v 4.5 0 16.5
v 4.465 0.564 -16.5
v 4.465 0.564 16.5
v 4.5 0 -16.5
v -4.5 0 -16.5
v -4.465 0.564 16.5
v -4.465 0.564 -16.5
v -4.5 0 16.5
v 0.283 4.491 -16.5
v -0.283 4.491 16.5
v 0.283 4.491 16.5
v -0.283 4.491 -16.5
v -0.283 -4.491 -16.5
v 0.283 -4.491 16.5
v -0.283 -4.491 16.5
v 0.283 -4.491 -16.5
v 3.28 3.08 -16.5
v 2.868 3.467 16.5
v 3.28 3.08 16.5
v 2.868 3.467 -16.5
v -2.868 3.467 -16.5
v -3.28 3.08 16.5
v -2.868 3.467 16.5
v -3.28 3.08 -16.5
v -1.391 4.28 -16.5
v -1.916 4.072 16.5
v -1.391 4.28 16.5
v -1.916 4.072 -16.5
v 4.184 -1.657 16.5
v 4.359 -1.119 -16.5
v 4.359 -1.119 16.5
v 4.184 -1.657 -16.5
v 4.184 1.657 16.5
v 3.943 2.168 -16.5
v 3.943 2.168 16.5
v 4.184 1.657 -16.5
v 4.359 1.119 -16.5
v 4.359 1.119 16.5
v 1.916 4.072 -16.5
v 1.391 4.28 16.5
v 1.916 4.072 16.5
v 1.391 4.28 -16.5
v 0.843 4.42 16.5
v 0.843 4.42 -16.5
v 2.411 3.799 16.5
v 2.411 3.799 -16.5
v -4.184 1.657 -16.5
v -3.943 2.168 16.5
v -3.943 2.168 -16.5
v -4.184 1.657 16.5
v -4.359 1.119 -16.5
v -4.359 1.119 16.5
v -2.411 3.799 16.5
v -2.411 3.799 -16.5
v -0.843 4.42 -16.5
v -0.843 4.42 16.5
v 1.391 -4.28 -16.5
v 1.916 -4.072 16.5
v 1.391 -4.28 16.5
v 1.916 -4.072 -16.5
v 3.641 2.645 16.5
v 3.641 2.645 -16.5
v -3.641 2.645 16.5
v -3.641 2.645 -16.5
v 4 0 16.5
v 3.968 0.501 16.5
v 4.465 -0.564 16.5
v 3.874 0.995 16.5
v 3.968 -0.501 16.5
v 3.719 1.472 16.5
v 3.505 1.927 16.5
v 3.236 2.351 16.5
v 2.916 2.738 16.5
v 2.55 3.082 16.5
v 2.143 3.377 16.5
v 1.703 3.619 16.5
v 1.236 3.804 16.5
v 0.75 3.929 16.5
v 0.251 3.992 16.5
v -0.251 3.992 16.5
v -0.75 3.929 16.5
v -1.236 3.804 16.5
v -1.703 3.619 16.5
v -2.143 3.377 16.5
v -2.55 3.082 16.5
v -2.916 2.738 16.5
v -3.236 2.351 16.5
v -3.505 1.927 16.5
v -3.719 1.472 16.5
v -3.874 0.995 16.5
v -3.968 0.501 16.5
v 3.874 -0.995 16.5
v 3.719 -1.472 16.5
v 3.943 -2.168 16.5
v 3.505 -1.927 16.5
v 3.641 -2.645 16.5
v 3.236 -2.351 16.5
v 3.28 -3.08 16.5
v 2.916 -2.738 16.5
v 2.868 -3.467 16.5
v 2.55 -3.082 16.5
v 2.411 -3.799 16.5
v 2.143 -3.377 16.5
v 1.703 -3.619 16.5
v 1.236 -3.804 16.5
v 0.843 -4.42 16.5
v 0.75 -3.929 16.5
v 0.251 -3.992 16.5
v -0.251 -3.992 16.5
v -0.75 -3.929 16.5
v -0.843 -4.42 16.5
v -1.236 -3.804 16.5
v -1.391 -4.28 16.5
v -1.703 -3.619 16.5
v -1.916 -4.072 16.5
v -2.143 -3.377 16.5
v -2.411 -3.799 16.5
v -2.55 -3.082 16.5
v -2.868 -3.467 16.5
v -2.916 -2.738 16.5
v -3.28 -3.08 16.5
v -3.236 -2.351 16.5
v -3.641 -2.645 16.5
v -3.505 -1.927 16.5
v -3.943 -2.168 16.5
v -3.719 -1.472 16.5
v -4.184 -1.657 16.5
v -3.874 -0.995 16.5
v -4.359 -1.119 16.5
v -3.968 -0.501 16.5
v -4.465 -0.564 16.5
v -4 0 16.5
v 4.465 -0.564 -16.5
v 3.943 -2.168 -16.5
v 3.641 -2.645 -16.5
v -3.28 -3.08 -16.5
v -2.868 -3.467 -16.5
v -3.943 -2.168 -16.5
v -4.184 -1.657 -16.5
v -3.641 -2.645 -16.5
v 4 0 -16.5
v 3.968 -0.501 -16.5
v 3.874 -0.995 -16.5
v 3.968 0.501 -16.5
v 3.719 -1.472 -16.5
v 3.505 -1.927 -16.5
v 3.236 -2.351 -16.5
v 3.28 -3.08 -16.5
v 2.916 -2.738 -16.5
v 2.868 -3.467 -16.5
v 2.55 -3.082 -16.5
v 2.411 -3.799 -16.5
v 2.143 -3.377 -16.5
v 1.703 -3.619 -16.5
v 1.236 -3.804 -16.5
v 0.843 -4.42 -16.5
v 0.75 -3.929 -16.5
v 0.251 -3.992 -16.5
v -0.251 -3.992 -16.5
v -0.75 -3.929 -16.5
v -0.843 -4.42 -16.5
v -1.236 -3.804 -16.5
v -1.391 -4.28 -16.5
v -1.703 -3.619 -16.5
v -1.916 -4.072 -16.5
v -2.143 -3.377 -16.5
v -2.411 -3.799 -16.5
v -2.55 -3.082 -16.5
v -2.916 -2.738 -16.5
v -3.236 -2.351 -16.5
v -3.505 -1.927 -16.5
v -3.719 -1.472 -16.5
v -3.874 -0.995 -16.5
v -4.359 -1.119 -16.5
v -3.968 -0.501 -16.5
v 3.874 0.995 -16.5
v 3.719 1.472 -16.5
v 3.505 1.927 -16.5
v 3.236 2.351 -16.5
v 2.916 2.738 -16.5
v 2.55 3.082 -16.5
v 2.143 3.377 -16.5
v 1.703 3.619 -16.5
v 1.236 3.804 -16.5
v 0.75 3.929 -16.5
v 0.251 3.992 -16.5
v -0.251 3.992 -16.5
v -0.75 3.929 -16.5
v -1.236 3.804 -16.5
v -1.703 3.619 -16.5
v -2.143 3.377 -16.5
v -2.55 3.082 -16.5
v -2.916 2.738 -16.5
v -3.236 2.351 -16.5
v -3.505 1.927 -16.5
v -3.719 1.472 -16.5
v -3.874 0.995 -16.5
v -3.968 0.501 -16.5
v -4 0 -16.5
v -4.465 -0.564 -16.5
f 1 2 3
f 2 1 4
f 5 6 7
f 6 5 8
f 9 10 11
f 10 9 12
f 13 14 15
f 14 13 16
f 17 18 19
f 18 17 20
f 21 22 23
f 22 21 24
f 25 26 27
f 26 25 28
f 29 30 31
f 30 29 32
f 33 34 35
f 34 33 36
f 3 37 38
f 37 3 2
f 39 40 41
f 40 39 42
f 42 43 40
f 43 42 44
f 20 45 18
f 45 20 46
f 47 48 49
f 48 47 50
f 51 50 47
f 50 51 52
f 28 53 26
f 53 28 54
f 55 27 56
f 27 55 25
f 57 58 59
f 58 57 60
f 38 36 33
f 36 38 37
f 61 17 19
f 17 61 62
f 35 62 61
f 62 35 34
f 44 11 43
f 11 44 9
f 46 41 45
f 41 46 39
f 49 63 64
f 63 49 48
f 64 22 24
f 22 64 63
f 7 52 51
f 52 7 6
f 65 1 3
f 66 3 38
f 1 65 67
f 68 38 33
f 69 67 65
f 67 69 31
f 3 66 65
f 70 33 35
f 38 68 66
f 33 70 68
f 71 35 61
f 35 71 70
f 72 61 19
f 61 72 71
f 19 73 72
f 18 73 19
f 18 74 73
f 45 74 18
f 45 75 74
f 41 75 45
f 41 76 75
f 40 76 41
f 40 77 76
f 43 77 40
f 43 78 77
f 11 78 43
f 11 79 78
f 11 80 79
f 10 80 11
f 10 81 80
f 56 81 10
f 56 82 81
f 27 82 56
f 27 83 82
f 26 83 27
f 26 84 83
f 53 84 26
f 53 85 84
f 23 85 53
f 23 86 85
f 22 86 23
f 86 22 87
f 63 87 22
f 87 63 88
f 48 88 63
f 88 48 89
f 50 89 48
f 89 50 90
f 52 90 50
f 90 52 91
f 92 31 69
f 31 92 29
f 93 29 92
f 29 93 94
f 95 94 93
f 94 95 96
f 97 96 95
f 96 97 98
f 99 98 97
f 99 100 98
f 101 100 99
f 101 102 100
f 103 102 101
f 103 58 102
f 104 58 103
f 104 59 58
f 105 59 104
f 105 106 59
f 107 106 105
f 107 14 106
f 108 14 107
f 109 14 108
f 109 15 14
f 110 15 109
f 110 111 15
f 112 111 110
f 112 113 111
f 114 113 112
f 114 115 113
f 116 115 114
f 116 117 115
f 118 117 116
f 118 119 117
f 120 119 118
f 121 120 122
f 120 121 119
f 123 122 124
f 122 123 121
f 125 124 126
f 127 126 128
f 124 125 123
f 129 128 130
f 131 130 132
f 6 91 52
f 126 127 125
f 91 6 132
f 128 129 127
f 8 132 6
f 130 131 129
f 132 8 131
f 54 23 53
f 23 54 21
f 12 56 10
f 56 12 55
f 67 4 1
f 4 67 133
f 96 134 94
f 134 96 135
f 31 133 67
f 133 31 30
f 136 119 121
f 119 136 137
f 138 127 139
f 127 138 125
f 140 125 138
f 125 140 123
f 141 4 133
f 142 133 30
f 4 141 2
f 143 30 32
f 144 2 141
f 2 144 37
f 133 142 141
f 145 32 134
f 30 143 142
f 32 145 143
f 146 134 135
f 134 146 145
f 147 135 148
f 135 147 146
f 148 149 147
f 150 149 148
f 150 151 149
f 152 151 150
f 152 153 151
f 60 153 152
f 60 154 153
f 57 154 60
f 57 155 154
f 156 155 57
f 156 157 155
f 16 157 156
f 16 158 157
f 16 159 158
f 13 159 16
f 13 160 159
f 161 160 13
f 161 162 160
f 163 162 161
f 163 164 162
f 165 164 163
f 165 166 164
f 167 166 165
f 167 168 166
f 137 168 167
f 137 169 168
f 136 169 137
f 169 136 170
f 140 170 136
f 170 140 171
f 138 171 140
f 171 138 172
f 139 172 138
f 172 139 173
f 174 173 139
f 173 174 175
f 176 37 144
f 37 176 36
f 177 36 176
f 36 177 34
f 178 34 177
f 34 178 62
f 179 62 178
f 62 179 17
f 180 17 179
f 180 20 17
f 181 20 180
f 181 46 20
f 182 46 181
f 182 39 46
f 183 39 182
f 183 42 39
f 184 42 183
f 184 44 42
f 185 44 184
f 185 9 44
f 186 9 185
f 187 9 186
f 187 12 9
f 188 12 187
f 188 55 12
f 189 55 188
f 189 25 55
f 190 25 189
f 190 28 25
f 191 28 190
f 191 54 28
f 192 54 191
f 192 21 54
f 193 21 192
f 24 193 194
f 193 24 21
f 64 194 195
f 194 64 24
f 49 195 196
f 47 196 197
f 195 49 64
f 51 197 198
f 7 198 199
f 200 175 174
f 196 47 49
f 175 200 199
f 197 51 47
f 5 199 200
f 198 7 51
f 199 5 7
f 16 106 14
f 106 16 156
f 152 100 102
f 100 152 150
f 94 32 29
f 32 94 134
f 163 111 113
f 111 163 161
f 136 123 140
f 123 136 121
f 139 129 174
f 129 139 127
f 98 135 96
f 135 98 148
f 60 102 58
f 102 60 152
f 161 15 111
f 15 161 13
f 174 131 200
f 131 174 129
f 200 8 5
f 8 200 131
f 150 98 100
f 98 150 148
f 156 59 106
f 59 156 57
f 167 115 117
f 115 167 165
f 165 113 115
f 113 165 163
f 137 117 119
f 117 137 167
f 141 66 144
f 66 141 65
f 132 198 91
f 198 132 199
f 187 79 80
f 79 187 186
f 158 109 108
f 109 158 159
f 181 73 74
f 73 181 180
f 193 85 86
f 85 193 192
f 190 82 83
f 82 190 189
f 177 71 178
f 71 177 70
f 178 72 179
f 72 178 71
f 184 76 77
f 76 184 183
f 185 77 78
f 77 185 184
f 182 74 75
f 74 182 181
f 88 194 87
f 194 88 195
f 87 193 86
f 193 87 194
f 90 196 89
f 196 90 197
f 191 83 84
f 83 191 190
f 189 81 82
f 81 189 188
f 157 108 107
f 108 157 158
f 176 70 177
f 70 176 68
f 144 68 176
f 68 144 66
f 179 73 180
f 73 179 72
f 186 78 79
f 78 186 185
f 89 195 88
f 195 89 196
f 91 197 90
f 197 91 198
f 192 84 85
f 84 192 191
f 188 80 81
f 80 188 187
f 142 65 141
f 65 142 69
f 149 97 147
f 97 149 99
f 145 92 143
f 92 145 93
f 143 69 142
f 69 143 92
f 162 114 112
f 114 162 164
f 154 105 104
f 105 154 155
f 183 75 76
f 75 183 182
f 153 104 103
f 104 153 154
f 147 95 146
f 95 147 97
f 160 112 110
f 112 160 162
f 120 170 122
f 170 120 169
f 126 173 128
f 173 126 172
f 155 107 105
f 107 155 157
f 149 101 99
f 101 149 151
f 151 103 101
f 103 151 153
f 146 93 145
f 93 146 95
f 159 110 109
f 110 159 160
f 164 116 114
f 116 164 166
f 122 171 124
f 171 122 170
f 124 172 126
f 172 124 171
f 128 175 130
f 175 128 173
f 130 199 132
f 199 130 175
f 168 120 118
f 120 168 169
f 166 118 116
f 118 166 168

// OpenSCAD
$fn = 50;


difference() {
	union() {
		translate(v = [0, 0, -16.5000000000]) {
			cylinder(h = 33, r = 4.5000000000);
		}
	}
	union() {
		translate(v = [0, 0, -100.0000000000]) {
			cylinder(h = 200, r = 4.0000000000);
		}
	}
}
